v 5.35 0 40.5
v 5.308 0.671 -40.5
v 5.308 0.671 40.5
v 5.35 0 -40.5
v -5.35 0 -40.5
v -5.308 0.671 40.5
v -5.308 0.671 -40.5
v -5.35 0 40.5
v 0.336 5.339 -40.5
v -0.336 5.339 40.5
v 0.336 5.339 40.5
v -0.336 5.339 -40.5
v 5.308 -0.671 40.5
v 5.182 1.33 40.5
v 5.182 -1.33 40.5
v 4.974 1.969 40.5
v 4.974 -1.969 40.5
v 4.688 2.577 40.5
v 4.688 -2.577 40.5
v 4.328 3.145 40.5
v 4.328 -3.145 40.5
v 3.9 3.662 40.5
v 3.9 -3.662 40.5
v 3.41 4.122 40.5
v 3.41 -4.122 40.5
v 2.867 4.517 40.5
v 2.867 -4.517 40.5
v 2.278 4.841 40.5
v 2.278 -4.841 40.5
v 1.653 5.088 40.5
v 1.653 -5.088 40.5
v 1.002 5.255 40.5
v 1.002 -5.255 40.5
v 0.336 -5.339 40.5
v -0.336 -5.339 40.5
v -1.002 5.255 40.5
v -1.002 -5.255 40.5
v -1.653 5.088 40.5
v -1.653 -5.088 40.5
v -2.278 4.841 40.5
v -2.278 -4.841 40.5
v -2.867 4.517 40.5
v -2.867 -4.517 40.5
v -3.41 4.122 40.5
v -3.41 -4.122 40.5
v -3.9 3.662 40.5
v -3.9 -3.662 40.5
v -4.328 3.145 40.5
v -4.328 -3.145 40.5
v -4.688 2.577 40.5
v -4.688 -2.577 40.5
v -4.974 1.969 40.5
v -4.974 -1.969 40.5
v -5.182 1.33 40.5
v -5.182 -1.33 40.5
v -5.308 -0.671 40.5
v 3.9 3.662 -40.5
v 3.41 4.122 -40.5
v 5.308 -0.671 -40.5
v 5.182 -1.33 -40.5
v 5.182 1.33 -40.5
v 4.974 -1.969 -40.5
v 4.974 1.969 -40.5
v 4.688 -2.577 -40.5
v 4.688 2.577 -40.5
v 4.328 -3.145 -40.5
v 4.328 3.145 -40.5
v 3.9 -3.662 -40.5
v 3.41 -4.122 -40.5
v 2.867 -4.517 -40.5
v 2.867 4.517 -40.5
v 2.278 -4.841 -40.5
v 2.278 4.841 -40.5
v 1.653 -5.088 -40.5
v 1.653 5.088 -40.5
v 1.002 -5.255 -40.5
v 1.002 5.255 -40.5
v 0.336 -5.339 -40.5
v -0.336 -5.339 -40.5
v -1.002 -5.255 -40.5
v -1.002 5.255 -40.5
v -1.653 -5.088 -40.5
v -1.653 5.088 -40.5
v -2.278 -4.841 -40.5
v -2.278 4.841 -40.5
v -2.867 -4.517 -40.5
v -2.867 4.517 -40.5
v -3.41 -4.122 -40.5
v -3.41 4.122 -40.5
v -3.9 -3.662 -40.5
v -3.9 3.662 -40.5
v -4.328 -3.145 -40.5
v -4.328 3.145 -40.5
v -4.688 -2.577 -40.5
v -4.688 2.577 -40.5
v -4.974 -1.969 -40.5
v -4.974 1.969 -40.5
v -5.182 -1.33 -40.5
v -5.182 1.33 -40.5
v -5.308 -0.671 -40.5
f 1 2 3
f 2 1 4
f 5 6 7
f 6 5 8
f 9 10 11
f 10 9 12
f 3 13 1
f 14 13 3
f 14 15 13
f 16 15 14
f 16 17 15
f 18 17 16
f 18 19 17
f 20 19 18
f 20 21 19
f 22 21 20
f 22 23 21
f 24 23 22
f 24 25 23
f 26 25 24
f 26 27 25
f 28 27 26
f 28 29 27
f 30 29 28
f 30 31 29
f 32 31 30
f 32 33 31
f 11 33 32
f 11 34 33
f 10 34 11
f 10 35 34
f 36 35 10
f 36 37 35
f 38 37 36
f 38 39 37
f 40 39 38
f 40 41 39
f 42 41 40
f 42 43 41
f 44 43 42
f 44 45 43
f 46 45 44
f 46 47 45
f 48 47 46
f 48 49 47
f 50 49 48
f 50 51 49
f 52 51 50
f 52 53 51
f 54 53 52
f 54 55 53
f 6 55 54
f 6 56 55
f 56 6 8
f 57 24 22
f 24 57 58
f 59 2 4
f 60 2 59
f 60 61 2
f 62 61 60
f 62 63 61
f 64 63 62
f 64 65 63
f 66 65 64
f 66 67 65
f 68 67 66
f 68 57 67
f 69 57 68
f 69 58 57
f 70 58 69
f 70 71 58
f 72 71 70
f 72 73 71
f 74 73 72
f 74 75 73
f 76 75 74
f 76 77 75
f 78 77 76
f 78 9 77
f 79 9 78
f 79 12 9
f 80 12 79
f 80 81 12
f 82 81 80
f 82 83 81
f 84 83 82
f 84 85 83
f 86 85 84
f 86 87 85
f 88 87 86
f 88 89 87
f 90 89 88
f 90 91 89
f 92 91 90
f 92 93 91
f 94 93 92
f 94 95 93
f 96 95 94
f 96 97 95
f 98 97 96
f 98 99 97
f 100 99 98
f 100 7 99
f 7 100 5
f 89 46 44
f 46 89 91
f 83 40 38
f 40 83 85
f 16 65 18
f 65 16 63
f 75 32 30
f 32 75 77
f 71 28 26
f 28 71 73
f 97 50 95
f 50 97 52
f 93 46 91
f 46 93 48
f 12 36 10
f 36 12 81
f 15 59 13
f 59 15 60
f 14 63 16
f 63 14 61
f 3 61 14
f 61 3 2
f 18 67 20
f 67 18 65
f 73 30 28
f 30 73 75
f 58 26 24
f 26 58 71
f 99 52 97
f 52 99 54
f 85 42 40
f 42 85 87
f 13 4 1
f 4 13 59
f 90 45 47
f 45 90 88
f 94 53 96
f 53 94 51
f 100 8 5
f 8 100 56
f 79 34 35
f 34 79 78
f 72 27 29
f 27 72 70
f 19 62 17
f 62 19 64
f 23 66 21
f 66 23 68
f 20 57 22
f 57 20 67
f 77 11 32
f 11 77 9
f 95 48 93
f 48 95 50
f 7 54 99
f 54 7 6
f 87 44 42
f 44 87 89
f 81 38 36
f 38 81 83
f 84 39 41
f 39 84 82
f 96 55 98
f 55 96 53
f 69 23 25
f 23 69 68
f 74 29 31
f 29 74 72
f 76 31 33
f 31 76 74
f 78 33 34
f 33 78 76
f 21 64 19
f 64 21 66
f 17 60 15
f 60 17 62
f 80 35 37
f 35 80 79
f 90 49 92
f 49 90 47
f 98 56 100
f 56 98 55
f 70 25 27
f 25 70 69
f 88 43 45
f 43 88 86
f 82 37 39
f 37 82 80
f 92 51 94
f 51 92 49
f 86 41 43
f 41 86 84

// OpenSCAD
$fn = 50;


difference() {
	union() {
		translate(v = [0, 0, -40.5000000000]) {
			cylinder(h = 81, r = 5.3500000000);
		}
	}
	union() {
		translate(v = [0, 0, -100.0000000000]) {
			cylinder(h = 200, r = 0);
		}
	}
}
